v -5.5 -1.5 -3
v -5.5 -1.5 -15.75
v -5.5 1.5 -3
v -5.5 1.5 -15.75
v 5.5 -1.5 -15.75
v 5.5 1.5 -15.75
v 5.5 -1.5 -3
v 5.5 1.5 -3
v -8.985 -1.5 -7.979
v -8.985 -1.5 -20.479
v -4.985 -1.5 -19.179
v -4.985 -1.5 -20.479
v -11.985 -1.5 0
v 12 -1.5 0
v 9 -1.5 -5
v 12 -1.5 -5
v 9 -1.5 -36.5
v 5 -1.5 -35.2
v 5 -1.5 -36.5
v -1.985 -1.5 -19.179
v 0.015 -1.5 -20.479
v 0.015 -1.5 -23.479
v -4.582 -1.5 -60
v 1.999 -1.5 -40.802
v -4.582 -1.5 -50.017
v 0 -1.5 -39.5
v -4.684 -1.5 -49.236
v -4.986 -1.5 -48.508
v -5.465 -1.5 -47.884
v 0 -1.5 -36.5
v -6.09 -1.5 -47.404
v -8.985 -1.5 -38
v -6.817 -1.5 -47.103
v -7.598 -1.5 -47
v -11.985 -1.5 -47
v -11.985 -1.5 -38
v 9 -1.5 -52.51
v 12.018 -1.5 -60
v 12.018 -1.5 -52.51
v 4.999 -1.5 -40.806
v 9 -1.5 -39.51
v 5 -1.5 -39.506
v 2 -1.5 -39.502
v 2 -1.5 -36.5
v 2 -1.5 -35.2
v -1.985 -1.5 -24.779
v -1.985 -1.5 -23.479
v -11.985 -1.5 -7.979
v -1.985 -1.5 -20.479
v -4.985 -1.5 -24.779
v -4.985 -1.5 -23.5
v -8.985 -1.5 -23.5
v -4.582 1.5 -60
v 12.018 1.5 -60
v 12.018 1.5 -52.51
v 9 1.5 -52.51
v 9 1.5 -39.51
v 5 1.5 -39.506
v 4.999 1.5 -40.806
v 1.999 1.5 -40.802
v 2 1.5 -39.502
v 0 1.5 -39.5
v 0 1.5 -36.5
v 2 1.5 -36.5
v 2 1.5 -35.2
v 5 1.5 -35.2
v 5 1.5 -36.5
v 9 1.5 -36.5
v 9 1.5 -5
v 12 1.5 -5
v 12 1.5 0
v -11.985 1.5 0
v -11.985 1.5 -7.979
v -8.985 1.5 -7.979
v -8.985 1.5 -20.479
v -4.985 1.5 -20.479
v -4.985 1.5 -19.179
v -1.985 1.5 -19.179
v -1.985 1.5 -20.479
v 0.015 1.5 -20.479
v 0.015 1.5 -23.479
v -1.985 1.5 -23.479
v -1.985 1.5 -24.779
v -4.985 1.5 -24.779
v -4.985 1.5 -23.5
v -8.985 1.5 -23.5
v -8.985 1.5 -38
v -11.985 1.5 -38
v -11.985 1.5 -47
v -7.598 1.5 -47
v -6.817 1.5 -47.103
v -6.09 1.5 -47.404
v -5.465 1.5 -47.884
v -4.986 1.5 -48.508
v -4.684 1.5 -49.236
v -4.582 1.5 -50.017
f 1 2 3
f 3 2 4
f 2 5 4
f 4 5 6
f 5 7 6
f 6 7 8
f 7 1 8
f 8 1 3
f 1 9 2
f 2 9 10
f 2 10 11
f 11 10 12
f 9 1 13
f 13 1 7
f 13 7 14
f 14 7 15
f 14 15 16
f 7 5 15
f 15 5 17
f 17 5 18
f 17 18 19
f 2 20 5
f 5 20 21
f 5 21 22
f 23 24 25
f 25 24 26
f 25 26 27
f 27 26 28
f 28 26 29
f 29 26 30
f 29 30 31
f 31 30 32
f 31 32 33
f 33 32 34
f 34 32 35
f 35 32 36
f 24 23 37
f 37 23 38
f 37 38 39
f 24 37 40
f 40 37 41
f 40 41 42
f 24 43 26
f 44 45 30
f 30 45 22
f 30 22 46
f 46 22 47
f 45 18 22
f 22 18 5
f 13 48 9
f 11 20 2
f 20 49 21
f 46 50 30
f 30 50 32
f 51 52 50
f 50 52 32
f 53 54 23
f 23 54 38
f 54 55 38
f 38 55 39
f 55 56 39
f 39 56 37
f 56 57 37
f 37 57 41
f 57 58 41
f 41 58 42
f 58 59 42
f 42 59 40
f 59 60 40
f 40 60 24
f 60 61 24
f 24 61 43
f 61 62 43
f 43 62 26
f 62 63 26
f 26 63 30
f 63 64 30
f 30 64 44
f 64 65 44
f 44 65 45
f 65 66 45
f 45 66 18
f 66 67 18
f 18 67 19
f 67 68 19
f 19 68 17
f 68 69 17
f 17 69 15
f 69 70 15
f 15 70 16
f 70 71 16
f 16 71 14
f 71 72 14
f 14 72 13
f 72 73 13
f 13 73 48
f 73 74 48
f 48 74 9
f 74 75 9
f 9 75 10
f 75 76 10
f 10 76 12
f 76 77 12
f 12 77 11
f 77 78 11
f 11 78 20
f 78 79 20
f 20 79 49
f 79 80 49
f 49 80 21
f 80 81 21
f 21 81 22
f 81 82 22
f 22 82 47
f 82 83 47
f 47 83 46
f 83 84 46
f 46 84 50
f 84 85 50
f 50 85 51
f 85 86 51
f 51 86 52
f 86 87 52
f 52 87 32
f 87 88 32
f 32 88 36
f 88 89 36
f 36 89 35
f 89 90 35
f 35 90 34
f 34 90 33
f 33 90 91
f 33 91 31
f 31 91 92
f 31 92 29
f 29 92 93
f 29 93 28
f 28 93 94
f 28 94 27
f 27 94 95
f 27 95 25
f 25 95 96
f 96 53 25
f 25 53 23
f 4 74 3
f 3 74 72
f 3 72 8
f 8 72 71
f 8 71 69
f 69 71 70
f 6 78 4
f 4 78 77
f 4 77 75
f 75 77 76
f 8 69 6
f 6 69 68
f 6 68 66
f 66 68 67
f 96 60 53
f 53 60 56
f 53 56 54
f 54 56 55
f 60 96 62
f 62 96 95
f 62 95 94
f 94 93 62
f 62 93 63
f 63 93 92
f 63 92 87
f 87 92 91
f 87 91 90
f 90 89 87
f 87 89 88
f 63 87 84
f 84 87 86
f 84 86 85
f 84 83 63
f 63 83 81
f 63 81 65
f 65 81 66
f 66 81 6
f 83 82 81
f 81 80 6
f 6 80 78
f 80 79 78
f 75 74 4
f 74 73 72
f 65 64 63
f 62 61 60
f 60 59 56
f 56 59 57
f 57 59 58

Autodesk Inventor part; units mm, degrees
ref_plane "YZ Plane" through (0, 0, 0) normal (1, 0, 0) x (0, 1, 0)
ref_plane "XZ Plane" through (0, 0, 0) normal (0, 1, 0) x (-1, 0, 0)
ref_plane "XY Plane" through (0, 0, 0) normal (0, 0, 1) x (1, 0, 0)
sketch "草圖1" plane through (0, 0, 0) normal (0, 1, 0) x (-1, 0, 0)
  line L0 (5.5, -3) -> (-5.5, -3)
  line L1 (-5.5, -3) -> (-5.5, -15.75)
  line L2 (-5.5, -15.75) -> (5.5, -15.75)
  line L3 (5.5, -15.75) -> (5.5, -3)
  line L4 (-9, -39.5104) -> (-5, -39.5058)
  line L5 (-5, -39.5058) -> (-4.9985, -40.8058)
  line L6 (-4.9985, -40.8058) -> (-1.9985, -40.8023)
  line L7 (-1.9985, -40.8023) -> (-2, -39.5023)
  line L8 (-2, -39.5023) -> (0, -39.5)
  line L9 (-5, -35.2) -> (-2, -35.2)
  line L10 (-5, -36.5) -> (-5, -35.2)
  line L11 (-2, -35.2) -> (-2, -36.5)
  line L12 (-2, -36.5) -> (0, -36.5)
  line L13 (-9, -36.5) -> (-5, -36.5)
  line L14 (-12, 0) -> (-12, -5)
  line L15 (-12, -5) -> (-9, -5)
  line L16 (-9, -5) -> (-9, -36.5)
  line L17 (-12, 0) -> (-12, -5)
  line L18 (11.9851, -47) -> (8.9851, -47)
  line L19 (7.5982, -47) -> (9.4378, -47)
  arc A0 (7.5982, -47) -> (4.5816, -50.0166) centre (7.5982, -50.0166) ccw
  line L20 (0, -36.5) -> (0, -39.5)
  line L21 (-12, 0) -> (-12, -5)
  line L22 (-12, -5) -> (-9, -5)
  line L23 (-9, -5) -> (-9, -36.5)
  line L24 (-9, -36.5) -> (-5, -36.5)
  line L25 (-5, -36.5) -> (-5, -35.2)
  line L26 (-5, -35.2) -> (-2.2106, -35.2)
  line L27 (-5, -35.2) -> (-2, -35.2)
  line L28 (-2, -35.2) -> (-2, -36.5)
  line L29 (-2, -36.5) -> (0, -36.5)
  line L30 (0, -36.5) -> (0, -39.5)
  line L31 (0, -39.5) -> (-2, -39.5023)
  line L32 (-2, -39.5023) -> (-1.9985, -40.8023)
  line L33 (-1.9985, -40.8023) -> (-4.9985, -40.8058)
  line L34 (-4.9985, -40.8023) -> (-5, -39.5058)
  line L35 (-5, -39.5058) -> (-9, -39.5104)
  line L36 (-9, -39.5104) -> (-9, -52.5104)
  line L37 (-9, -52.5104) -> (-12.0184, -52.5104)
  line L38 (11.9851, -47) -> (7.5982, -47)
  line L39 (11.985, -7.9789) -> (11.985, 0)
  line L40 (11.985, 0) -> (-12, 0)
  line L41 (11.985, -7.9789) -> (8.985, -7.9789)
  line L42 (8.985, -7.9789) -> (8.985, -20.4789)
  line L43 (8.9851, -38) -> (11.9851, -38)
  line L44 (8.985, -20.4789) -> (4.985, -20.4789)
  line L45 (4.985, -20.4789) -> (4.985, -19.1789)
  line L46 (4.985, -19.1789) -> (1.985, -19.1789)
  line L47 (1.985, -19.1789) -> (1.985, -20.4789)
  line L48 (1.985, -20.4789) -> (-0.015, -20.4789)
  line L49 (-0.015, -20.4789) -> (-0.015, -23.4789)
  line L50 (1.985, -23.4789) -> (-0.015, -23.4789)
  line L51 (1.985, -23.4789) -> (1.985, -24.7789)
  line L52 (4.985, -24.7789) -> (1.985, -24.7789)
  line L53 (4.985, -24.7789) -> (4.985, -23.4789)
  line L54 (4.985, -23.5) -> (8.9851, -23.5)
  line L55 (8.9851, -23.5) -> (8.9851, -38)
  line L56 (11.9851, -38) -> (11.9851, -47)
  line L57 (4.5816, -50.0166) -> (4.5816, -60)
  line L58 (4.5816, -60) -> (-12.0184, -60)
  line L59 (-12.0184, -52.5104) -> (-12.0184, -60)
  point P0 (0, 0)
  dimension "d2" = 11
  dimension "d3" = 12.75
  dimension "d7" = 3
  dimension "d10" = 4
  dimension "d12" = 3
  dimension "d17" = 4
  dimension "d18" = 1.3
  dimension "d19" = 3
  dimension "d20" = 1.3
  dimension "d21" = 2
  dimension "d22" = 5
  dimension "d23" = 3
  dimension "d25" = 31.5
  dimension "d26" = 13
  dimension "d27" = 14.5
  dimension "d29" = 16.6
  dimension "d30" = 2
extrude "擠出1" add sketch "草圖1" along normal mid plane 3
properties part number "板子10"
